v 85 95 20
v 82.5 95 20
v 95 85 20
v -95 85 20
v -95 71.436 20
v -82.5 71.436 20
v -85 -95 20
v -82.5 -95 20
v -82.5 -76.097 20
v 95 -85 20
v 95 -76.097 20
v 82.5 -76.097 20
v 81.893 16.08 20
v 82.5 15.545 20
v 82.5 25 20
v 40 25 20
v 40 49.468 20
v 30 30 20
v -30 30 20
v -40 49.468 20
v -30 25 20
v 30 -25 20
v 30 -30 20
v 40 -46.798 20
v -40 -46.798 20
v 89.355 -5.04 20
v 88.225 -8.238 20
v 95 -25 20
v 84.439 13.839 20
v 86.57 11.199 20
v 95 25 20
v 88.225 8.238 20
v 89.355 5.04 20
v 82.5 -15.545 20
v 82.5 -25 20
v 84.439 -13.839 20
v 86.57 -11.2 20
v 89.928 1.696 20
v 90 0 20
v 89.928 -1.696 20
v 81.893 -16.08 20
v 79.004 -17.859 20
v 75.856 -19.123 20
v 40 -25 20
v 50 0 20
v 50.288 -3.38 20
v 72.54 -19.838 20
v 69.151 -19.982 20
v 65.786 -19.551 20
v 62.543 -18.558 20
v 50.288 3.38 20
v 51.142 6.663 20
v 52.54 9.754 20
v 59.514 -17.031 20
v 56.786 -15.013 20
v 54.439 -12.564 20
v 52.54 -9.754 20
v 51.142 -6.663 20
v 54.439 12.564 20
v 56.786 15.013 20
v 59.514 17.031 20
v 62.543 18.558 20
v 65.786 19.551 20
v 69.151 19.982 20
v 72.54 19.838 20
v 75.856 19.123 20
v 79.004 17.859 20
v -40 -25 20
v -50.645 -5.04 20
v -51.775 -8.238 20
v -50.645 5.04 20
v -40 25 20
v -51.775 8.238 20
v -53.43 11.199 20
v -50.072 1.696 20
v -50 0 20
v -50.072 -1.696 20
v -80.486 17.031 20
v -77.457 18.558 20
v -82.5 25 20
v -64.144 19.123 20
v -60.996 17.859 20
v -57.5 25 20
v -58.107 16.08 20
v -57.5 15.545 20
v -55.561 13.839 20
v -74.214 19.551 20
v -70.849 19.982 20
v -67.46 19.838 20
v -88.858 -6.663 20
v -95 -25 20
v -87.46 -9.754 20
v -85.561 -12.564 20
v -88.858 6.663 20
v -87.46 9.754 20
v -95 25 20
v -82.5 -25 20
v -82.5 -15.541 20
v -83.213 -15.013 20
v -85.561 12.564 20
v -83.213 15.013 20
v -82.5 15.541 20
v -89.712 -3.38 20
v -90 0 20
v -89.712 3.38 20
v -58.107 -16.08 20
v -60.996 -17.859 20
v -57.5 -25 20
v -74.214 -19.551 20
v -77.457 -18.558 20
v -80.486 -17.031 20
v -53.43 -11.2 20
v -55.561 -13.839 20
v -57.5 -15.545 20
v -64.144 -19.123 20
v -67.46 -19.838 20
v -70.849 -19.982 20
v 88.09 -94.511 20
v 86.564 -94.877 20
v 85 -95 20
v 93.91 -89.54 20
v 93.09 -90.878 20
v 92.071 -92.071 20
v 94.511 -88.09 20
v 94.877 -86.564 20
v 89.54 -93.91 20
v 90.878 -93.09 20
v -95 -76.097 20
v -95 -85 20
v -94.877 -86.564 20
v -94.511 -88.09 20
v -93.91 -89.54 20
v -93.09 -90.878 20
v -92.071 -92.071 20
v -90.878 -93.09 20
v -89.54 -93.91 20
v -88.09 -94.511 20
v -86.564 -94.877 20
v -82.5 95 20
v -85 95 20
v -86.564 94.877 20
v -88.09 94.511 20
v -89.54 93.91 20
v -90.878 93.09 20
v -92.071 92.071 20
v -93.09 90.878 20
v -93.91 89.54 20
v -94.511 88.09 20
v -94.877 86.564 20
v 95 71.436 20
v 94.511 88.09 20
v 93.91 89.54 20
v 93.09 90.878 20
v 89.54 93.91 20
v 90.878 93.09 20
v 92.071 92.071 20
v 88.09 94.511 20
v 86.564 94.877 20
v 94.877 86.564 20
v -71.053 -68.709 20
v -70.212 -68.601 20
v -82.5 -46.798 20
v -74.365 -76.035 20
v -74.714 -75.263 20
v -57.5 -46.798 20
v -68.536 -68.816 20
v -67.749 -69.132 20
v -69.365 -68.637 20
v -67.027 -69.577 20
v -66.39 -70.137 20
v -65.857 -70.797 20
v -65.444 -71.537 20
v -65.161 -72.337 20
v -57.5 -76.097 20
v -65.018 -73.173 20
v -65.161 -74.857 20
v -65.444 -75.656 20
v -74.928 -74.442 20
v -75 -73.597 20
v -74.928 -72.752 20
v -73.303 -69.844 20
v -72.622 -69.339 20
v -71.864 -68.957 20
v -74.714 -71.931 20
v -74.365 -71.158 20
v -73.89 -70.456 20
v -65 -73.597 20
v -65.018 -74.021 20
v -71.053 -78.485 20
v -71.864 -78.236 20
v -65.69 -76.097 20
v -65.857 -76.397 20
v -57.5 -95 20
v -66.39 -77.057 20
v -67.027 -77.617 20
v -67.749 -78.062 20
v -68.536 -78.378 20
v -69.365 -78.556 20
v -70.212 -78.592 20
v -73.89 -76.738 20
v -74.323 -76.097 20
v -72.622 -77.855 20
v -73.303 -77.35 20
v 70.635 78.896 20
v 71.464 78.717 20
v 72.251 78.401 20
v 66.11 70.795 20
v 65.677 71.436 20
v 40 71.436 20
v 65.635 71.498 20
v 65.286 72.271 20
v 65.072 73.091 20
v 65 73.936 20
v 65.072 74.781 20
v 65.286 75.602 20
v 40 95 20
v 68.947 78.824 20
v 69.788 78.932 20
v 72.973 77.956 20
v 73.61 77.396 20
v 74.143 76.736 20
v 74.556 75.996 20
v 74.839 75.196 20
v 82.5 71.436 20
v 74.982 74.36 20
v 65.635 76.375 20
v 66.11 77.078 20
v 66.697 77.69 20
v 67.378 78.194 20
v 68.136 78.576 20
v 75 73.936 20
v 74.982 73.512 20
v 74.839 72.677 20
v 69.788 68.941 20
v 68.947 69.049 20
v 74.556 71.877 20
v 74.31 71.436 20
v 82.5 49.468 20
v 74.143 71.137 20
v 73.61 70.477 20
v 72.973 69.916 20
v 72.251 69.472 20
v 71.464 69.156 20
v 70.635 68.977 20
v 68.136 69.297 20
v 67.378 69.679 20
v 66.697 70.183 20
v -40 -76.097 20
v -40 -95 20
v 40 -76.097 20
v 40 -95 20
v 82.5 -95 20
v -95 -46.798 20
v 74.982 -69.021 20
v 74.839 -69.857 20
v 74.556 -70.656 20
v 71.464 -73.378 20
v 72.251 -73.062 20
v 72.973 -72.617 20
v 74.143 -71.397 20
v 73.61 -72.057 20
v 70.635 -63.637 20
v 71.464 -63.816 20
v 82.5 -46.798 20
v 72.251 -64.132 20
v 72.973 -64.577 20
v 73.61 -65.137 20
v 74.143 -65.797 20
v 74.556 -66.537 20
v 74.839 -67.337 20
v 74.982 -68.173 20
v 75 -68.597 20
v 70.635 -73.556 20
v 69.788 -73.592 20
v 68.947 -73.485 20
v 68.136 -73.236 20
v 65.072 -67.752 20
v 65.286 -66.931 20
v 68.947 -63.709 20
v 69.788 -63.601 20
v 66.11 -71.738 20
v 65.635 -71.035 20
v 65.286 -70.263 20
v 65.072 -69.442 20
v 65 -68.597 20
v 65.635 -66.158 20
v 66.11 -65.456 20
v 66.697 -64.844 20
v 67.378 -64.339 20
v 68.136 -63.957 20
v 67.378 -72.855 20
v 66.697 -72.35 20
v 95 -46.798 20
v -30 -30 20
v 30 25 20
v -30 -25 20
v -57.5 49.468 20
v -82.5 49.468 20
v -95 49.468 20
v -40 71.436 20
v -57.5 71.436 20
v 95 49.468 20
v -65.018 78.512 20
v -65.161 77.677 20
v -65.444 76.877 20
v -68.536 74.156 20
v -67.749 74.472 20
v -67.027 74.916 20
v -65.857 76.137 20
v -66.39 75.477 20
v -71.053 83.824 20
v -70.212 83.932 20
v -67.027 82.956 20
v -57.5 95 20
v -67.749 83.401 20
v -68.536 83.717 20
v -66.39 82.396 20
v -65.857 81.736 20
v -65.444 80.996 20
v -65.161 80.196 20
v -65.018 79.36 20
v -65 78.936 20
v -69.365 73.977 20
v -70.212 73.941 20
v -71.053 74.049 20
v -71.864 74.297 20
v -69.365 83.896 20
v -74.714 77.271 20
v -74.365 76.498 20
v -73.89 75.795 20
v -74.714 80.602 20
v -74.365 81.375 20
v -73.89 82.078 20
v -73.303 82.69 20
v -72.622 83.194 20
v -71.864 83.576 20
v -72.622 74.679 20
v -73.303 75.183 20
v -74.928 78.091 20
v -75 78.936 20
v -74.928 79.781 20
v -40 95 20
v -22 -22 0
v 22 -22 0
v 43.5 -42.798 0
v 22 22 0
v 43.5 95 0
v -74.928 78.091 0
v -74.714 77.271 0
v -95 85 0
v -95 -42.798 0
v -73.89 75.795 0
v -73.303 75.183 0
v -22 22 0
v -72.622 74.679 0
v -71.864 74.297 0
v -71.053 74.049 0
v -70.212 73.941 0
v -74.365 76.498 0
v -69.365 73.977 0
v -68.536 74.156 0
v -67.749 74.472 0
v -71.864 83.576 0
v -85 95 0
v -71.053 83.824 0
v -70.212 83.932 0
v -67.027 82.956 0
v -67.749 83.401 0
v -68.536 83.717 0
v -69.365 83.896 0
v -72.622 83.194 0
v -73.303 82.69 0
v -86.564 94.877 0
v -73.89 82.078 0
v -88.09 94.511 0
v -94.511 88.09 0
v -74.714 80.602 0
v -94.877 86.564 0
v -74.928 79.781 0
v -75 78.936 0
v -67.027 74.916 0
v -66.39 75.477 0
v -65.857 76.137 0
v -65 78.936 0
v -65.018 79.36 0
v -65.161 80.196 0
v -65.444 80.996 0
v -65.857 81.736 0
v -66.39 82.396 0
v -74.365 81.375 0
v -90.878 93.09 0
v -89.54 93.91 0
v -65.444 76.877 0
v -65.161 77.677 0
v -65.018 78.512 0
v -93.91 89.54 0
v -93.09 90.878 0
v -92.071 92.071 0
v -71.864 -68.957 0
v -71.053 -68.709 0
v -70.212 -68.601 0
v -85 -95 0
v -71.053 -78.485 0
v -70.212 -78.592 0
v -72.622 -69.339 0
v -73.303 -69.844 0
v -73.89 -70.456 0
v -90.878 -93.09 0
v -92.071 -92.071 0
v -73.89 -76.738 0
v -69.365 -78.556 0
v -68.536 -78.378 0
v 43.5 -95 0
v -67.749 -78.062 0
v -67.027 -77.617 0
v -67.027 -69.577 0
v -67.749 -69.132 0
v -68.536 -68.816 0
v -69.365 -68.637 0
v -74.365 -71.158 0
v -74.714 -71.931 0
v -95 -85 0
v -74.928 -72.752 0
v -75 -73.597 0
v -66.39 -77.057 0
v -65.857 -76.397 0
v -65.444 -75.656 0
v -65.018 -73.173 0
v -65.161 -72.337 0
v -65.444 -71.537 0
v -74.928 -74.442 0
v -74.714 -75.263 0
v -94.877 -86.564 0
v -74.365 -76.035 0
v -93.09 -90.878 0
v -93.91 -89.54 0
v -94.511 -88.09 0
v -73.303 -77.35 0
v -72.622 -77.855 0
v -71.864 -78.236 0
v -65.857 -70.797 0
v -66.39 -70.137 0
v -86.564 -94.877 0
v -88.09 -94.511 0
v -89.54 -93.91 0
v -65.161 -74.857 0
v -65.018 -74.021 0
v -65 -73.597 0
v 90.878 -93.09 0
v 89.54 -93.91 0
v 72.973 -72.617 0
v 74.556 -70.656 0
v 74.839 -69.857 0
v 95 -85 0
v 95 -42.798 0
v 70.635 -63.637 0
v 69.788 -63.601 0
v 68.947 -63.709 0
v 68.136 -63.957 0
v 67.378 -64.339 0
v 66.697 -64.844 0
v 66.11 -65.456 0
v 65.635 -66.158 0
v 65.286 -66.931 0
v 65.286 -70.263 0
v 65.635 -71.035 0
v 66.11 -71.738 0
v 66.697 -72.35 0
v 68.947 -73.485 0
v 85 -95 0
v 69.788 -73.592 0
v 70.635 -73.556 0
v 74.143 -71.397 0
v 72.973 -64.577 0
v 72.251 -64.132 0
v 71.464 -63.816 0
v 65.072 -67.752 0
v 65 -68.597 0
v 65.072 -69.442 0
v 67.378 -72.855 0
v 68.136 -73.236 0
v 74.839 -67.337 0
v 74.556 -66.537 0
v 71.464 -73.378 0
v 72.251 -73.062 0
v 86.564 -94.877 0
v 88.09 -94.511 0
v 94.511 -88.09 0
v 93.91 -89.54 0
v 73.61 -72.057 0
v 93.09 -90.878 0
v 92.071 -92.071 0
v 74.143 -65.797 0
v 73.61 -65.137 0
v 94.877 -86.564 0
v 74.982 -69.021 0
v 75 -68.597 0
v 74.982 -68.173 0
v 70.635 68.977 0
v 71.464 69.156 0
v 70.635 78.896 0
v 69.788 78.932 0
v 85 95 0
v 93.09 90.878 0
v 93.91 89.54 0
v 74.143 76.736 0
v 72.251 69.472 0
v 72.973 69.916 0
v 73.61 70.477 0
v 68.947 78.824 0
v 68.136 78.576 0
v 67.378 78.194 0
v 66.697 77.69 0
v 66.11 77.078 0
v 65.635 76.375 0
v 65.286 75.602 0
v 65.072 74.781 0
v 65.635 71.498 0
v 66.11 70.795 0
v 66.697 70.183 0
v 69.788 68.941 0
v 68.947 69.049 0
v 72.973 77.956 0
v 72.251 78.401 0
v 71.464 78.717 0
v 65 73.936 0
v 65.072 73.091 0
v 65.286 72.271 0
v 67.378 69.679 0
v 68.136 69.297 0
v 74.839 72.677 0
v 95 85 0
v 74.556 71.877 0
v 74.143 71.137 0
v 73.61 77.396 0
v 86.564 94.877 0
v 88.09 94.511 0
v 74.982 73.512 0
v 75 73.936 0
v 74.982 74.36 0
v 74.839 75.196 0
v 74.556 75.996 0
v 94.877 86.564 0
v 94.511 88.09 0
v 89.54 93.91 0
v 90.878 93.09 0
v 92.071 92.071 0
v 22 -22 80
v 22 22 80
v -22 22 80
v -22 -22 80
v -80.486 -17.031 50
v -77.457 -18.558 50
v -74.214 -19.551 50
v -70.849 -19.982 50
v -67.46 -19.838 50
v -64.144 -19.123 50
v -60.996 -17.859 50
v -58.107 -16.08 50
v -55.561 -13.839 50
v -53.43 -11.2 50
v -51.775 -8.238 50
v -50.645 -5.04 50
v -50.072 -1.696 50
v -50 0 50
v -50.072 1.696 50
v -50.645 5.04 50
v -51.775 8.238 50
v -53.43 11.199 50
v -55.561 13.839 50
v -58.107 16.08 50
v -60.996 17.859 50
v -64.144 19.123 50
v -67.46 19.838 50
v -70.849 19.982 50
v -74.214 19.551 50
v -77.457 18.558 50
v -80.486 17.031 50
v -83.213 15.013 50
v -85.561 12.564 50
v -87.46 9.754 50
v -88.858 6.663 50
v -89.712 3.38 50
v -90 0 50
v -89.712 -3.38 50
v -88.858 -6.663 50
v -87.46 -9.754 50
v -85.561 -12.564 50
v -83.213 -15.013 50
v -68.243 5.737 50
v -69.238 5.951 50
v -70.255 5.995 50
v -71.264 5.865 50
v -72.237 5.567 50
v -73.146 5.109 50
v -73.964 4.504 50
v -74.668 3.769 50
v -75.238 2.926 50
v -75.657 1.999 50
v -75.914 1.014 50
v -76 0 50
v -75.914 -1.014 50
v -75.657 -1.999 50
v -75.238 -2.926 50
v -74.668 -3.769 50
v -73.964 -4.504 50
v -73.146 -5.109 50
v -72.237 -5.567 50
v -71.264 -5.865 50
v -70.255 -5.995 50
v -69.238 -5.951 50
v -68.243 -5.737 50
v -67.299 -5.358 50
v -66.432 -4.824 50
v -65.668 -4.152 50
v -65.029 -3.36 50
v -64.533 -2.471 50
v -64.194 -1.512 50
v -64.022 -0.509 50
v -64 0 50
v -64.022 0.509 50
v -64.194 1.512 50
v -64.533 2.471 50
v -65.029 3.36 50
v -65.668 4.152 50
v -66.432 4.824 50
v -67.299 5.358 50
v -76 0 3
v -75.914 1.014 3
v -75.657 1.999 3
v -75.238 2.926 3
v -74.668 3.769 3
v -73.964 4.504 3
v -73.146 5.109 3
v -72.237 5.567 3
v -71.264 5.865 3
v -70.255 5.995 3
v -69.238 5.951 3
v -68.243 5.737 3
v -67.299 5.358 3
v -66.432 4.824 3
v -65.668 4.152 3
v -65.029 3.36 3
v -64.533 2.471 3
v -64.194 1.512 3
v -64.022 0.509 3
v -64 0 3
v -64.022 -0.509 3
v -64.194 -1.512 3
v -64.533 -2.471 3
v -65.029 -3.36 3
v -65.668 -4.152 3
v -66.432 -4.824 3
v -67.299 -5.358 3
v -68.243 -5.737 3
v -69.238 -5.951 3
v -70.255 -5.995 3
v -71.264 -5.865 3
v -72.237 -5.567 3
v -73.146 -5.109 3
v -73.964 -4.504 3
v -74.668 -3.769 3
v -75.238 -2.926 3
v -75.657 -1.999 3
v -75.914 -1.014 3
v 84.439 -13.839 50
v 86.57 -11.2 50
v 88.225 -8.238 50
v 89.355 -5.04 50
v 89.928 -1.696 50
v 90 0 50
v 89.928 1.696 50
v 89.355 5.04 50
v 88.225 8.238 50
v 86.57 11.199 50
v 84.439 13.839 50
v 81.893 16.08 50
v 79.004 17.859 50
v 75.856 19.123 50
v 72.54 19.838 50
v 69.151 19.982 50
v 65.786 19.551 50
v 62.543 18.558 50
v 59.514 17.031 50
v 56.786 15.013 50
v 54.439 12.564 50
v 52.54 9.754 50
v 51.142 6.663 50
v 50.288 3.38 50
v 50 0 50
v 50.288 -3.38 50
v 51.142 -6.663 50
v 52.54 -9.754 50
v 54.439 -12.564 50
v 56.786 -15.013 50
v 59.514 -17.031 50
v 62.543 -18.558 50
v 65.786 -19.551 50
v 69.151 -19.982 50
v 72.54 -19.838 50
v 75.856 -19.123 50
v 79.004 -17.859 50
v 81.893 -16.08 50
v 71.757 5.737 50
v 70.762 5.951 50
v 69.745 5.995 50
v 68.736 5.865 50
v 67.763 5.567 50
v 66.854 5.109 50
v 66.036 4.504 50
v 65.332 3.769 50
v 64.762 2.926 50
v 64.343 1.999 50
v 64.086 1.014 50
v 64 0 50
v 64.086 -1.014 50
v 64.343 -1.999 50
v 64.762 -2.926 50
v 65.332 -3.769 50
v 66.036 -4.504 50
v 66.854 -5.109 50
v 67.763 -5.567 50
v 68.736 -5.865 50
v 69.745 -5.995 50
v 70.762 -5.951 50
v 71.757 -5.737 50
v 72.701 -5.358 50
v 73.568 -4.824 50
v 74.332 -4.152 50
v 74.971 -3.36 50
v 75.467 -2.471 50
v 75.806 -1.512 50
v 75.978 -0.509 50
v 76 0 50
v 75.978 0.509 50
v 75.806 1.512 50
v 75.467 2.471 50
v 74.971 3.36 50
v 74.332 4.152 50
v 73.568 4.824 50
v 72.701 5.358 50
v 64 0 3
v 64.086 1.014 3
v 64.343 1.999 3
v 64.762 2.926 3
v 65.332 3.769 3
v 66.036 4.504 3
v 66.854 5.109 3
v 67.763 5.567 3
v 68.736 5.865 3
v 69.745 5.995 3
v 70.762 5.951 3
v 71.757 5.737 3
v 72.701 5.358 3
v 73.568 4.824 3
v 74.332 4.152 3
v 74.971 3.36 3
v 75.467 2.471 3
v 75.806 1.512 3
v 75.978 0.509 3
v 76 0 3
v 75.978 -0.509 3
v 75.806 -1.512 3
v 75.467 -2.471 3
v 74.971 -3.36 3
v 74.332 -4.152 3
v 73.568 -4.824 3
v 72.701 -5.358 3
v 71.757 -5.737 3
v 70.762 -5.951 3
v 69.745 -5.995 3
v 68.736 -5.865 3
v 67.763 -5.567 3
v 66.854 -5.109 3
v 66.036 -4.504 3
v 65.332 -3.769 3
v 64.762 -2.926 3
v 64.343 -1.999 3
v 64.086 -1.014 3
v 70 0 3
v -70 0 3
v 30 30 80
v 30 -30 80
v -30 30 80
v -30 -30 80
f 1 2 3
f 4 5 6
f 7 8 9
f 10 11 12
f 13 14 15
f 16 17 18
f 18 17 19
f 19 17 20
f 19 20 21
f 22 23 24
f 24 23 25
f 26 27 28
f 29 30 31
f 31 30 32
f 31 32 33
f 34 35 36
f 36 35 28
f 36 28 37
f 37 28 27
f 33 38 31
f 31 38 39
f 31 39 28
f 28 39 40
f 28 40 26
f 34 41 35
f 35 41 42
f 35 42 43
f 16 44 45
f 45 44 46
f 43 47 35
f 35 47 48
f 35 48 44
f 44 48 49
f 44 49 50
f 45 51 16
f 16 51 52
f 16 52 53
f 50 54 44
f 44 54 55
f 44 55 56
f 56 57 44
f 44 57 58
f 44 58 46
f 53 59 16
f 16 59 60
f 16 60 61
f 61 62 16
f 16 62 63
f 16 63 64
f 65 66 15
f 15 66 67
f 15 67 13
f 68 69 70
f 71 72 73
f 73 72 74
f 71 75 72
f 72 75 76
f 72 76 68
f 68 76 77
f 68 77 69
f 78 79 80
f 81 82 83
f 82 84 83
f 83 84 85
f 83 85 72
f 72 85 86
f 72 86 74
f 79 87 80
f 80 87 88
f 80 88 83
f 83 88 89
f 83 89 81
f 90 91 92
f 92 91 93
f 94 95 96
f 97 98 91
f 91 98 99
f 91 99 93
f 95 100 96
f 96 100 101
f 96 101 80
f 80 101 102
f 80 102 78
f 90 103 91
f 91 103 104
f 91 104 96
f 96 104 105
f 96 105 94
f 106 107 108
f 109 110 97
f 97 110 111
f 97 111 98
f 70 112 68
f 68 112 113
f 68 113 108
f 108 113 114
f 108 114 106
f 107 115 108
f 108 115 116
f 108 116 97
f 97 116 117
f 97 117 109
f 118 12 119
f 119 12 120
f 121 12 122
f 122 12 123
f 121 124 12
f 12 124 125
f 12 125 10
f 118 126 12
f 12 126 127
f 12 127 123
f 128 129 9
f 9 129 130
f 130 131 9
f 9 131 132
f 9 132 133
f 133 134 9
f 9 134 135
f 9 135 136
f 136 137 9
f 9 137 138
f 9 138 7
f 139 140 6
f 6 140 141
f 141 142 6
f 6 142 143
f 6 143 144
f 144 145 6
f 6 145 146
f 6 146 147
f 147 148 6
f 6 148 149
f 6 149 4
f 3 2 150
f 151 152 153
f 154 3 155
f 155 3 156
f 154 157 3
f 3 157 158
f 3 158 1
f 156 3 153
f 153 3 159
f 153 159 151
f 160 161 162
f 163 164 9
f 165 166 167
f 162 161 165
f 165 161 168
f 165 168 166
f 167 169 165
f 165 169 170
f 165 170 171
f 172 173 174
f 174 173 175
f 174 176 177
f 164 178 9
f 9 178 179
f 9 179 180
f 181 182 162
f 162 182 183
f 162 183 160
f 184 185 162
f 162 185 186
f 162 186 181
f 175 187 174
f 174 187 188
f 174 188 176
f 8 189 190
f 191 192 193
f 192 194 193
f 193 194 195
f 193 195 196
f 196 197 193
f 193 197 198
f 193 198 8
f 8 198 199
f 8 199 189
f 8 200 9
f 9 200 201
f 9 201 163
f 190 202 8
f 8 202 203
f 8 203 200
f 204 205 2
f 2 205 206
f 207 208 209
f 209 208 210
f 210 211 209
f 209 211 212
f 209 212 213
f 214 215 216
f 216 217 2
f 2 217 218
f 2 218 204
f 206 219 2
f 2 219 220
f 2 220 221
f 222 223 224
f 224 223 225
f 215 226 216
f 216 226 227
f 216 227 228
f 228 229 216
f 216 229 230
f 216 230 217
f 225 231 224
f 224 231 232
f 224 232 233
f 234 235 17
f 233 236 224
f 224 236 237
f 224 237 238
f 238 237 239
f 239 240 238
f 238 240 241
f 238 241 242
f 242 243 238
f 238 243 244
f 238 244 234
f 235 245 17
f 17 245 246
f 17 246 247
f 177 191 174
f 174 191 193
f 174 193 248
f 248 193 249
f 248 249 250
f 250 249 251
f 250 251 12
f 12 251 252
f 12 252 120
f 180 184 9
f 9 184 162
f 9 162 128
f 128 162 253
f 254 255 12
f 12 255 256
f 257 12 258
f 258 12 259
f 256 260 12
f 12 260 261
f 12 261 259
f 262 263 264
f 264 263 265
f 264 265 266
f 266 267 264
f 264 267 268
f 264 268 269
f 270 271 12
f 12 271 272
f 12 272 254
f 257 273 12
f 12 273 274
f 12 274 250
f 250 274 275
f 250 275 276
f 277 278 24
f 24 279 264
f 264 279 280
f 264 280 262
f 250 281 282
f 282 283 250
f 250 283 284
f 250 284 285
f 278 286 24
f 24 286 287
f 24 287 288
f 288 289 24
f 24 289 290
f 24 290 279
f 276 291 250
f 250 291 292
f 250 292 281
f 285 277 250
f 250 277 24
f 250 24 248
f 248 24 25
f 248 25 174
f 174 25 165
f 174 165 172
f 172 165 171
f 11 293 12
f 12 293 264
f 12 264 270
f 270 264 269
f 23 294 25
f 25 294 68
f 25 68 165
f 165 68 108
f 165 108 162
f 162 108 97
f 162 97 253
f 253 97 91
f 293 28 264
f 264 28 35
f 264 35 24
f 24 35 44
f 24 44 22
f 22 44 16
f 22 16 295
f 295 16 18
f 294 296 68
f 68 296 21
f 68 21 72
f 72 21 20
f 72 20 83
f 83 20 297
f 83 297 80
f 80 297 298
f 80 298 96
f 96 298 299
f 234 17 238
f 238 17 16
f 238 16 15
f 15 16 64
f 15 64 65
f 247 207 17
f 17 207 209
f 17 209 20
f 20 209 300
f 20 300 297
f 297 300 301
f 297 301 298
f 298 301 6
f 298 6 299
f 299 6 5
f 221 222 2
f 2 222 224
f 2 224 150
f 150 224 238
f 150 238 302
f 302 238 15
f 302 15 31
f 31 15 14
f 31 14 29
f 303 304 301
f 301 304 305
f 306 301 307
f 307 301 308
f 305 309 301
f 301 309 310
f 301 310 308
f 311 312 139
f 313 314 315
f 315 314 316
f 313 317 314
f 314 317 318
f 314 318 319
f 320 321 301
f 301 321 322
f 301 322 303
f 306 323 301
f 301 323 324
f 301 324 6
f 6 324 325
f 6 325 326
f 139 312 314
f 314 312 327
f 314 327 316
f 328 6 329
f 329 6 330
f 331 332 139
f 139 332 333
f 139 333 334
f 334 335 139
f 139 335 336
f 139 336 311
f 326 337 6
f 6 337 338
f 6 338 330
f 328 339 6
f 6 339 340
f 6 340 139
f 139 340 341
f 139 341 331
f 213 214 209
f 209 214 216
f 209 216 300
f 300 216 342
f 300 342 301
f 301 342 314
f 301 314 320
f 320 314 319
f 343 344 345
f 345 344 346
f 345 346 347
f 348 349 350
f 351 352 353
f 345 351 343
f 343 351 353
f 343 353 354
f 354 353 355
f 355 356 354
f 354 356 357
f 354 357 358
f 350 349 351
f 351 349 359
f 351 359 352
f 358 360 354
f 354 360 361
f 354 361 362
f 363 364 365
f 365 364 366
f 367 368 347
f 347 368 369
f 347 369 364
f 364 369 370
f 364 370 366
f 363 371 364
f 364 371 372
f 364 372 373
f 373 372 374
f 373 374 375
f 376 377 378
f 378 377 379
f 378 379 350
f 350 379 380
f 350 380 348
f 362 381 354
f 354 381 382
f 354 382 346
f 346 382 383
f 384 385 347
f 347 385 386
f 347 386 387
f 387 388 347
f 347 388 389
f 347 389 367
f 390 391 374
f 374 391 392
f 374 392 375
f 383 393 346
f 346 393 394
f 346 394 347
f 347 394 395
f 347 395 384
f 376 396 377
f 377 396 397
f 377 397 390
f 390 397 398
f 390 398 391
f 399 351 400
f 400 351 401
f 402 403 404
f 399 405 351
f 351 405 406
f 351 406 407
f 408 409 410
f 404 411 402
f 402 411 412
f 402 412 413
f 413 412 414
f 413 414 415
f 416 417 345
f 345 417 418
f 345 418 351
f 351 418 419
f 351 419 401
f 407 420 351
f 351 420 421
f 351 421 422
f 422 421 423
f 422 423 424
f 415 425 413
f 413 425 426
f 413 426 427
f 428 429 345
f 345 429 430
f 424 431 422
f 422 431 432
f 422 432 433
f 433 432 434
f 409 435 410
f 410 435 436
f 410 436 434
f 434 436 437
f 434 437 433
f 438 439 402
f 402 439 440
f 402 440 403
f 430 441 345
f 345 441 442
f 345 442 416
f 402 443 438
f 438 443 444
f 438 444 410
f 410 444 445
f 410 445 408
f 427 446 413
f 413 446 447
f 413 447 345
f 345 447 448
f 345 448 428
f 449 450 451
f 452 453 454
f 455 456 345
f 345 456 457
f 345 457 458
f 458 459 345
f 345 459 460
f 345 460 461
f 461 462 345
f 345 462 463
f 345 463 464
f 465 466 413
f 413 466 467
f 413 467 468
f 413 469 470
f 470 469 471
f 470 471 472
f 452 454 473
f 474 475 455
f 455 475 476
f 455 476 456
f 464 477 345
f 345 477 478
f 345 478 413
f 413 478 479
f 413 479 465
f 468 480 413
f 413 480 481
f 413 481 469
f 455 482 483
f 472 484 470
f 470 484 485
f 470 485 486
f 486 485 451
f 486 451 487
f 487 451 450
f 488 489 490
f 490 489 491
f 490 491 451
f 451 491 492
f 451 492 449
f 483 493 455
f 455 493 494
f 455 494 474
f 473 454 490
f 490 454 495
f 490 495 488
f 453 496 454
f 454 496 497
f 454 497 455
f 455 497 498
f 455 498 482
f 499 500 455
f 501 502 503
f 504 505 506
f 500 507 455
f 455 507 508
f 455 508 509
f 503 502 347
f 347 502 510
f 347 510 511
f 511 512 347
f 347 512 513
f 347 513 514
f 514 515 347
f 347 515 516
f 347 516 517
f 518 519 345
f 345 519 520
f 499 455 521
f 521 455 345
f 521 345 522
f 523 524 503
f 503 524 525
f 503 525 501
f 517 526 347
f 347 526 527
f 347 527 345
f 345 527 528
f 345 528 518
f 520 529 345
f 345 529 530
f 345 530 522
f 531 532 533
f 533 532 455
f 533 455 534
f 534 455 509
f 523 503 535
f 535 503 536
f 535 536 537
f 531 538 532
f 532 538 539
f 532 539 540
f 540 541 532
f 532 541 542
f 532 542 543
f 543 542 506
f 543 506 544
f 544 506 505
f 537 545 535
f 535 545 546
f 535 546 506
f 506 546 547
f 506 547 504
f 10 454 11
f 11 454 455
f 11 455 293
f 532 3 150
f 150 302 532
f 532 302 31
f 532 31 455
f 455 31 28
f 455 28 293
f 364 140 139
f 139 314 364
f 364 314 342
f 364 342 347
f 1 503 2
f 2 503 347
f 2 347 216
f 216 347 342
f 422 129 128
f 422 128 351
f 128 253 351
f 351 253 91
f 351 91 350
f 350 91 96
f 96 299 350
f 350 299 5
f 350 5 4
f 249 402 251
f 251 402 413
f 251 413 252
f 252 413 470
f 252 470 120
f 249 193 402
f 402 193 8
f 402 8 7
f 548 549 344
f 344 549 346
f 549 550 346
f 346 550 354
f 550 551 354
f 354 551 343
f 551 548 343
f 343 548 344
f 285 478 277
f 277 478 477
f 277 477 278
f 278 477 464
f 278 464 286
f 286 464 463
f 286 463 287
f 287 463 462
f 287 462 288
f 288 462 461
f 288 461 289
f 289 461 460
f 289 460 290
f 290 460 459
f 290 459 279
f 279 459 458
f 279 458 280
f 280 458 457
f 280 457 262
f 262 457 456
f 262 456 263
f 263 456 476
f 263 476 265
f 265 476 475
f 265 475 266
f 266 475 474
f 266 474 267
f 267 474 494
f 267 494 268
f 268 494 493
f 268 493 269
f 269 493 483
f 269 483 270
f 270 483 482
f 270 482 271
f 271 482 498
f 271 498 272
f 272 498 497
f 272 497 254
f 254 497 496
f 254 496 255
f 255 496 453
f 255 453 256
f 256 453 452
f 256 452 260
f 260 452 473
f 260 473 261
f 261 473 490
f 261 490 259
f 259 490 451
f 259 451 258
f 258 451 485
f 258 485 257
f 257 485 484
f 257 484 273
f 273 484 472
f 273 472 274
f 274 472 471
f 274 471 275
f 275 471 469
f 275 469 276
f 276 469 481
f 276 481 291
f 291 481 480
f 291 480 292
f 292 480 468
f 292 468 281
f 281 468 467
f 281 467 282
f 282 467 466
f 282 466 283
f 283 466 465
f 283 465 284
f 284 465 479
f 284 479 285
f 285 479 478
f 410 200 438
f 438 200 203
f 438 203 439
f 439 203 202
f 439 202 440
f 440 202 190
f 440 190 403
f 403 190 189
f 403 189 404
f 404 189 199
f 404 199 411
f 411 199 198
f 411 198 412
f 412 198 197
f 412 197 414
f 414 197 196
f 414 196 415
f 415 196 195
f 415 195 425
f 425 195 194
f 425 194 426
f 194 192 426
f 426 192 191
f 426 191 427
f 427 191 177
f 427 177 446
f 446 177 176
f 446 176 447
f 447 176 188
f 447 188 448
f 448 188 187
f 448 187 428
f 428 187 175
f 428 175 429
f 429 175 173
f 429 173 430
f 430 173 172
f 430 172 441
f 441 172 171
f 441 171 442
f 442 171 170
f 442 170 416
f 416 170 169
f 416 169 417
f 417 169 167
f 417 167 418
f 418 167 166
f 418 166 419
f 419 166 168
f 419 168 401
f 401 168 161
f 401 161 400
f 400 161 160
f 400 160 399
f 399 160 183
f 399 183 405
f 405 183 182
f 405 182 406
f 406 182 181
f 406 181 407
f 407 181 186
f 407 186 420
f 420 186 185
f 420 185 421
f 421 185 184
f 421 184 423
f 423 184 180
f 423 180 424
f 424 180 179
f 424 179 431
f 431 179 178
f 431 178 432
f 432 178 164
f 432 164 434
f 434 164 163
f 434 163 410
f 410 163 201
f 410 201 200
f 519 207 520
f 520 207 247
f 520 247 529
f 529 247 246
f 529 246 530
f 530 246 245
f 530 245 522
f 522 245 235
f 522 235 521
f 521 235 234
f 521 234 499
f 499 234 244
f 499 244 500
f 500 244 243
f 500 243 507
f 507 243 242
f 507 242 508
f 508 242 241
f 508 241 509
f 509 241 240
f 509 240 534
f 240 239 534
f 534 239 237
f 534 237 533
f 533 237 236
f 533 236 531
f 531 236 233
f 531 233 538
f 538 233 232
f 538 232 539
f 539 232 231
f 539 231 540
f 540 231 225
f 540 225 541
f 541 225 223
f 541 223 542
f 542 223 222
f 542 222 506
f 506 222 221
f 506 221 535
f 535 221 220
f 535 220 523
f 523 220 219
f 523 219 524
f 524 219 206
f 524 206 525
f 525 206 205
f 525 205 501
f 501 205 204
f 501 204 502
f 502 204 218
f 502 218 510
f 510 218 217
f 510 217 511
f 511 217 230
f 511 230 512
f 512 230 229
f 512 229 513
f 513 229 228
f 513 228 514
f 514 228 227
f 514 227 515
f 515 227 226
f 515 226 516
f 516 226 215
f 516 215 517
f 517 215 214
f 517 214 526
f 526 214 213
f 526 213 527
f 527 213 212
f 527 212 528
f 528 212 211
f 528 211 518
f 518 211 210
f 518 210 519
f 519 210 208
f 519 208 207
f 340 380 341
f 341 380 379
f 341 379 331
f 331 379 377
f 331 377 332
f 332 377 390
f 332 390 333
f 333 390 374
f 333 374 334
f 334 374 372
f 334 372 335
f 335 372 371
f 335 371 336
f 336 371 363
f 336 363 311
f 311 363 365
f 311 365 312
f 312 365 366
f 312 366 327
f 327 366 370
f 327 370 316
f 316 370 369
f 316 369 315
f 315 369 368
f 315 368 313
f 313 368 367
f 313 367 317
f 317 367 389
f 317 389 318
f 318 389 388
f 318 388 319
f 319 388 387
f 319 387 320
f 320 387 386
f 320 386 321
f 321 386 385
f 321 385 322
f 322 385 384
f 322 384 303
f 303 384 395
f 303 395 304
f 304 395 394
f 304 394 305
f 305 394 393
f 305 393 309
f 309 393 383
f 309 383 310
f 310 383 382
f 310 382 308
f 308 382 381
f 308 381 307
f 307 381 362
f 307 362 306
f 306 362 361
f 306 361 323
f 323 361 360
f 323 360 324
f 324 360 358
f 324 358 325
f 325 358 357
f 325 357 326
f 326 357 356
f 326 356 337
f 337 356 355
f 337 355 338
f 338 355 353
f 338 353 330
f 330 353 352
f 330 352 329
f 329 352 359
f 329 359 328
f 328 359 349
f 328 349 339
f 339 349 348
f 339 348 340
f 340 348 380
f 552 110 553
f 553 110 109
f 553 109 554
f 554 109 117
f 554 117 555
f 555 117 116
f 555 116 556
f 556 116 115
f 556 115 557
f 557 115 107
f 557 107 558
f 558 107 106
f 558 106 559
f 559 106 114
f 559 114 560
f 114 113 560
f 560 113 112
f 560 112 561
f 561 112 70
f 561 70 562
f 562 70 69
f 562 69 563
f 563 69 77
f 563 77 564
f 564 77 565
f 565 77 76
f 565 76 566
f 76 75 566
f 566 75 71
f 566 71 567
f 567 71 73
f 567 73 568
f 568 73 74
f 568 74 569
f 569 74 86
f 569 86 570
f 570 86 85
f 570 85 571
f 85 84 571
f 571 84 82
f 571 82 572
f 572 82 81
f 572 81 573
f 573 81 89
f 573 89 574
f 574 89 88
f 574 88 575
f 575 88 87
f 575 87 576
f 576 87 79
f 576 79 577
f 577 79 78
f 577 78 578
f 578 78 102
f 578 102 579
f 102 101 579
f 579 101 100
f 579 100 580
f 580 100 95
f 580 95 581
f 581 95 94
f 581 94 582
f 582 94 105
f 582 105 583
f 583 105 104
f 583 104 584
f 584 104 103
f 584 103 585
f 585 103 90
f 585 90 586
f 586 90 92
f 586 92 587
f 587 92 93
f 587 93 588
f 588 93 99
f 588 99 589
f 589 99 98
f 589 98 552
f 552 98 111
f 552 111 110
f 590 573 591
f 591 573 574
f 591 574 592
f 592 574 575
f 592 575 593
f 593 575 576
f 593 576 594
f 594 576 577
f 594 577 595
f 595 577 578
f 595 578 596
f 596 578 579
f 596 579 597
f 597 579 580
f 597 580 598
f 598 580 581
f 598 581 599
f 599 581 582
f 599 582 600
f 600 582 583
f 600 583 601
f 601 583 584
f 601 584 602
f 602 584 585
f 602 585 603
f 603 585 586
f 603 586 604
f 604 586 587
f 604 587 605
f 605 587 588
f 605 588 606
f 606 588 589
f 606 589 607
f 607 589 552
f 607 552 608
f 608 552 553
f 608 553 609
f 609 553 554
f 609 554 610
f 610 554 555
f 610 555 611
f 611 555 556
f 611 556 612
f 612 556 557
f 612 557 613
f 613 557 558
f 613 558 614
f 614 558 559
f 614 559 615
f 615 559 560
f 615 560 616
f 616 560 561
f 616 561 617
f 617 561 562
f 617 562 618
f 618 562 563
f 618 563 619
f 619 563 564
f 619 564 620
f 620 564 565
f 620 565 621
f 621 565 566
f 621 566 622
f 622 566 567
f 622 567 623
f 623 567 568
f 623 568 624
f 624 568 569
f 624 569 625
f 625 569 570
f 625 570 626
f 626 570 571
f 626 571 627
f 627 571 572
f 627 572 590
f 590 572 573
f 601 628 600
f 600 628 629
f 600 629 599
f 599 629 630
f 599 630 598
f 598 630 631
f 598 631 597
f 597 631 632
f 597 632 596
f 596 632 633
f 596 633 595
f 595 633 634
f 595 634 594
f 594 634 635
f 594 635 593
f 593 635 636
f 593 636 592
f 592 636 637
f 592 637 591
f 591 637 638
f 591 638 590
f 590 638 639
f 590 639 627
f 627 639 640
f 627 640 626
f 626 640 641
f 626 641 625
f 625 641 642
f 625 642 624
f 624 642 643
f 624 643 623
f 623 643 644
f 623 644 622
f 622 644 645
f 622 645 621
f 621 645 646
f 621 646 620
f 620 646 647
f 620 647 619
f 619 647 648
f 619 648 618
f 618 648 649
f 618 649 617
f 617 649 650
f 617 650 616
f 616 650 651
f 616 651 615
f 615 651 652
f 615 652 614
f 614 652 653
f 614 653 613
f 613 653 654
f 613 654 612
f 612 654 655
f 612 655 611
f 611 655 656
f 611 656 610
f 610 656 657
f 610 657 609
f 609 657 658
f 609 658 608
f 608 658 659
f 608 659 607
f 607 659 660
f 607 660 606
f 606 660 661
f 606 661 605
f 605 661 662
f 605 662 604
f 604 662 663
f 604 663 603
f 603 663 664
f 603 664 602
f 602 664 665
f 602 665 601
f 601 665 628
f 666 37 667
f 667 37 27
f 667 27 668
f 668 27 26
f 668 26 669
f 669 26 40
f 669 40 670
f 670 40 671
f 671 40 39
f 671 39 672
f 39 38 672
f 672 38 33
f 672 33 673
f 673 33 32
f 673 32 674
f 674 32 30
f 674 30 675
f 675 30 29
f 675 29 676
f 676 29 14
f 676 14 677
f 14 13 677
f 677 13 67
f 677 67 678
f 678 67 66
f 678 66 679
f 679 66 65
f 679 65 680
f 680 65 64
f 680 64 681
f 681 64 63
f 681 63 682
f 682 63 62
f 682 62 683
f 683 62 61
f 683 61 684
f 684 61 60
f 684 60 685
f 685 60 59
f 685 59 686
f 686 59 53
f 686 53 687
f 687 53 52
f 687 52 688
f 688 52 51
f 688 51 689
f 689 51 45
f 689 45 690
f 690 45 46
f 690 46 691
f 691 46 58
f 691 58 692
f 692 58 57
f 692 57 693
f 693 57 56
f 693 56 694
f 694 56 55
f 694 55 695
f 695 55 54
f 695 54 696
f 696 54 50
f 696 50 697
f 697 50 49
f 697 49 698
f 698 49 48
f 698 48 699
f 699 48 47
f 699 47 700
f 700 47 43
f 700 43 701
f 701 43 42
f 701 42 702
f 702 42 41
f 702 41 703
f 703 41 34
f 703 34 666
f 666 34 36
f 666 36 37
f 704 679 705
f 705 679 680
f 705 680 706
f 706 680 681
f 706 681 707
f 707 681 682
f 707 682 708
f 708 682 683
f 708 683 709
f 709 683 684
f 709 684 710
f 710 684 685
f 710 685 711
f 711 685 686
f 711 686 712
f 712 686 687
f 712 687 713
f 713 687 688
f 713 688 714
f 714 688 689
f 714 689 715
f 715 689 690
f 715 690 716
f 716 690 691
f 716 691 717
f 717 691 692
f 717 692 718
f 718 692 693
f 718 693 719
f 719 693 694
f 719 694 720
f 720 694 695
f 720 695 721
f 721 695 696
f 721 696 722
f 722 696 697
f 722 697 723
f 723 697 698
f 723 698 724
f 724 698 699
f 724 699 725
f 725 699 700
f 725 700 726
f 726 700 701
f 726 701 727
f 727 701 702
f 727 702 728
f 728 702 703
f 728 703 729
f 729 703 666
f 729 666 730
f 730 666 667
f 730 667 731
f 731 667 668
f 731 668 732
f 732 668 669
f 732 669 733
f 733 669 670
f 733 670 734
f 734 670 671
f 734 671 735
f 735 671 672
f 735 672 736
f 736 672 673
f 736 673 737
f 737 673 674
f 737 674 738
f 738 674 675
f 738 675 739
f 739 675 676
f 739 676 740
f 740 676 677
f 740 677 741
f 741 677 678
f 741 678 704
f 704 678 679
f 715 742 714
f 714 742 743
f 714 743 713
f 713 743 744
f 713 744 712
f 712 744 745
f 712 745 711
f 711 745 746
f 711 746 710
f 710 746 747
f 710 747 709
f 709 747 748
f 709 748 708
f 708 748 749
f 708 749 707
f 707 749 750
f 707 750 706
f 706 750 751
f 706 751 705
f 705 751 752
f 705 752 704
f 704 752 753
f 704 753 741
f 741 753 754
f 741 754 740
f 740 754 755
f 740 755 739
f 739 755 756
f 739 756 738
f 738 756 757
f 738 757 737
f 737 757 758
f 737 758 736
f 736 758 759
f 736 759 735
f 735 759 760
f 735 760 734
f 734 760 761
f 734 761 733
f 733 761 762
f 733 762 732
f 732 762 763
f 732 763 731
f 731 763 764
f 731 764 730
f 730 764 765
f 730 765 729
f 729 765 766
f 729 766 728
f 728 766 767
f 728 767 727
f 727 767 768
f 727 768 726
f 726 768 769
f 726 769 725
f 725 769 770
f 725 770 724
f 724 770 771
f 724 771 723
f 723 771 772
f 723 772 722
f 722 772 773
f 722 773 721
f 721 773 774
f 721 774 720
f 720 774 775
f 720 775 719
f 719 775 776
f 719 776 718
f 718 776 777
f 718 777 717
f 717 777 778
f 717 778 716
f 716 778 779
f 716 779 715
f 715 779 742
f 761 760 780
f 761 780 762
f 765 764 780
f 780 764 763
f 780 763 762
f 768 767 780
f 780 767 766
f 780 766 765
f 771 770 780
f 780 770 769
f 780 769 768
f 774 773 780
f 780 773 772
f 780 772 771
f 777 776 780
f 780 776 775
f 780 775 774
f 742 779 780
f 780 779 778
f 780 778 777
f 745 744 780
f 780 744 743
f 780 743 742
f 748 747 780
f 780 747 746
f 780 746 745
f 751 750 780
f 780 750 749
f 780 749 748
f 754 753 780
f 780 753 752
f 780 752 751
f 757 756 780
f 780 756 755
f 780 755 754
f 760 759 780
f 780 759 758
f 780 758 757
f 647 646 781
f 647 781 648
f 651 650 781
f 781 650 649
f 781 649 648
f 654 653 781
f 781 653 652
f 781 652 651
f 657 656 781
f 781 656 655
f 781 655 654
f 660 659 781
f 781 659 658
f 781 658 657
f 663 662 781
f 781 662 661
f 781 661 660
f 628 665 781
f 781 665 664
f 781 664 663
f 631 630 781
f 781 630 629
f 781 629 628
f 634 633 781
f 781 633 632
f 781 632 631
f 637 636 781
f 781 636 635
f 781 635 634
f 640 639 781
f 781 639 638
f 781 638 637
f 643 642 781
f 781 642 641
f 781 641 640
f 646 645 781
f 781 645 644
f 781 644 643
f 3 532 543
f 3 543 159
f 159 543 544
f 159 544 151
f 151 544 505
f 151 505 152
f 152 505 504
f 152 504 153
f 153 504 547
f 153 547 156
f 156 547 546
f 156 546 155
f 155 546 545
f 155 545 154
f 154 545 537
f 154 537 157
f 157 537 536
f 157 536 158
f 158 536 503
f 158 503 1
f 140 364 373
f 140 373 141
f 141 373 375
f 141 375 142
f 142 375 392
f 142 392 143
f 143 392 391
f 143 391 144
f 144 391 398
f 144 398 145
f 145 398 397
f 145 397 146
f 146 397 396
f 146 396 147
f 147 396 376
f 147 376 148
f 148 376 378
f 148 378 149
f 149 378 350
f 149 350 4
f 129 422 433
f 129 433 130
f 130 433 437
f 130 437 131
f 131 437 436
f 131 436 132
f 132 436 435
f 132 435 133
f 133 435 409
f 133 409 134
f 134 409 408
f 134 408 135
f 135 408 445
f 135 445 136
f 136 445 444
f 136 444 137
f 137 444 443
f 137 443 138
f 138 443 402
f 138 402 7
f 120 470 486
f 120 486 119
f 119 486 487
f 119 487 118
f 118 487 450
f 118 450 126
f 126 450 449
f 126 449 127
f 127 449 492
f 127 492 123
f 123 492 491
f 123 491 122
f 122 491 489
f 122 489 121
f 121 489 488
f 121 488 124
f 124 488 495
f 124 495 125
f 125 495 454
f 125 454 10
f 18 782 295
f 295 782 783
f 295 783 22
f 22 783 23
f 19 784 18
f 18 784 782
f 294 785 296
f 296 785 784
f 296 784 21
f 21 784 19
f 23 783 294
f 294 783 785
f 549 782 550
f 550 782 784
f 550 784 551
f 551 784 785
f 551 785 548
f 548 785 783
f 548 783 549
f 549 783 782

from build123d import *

# Parameters (mm, degrees)
SKETCH1_W           = 190
SKETCH1_H           = 190
SKETCH1_R           = 20
SKETCH1_R_2         = 5
SKETCH1_W_2         = 44
SKETCH1_H_2         = 44
BOSS_EXTRUDE2_DEPTH = 20
SKETCH2_R           = 20
SKETCH2_R_2         = 6
BOSS_EXTRUDE5_DEPTH = 50
SKETCH4_R           = 20
BOSS_EXTRUDE6_DEPTH = 3
FILLET1_R           = 10
SKETCH6_W           = 60
SKETCH6_H           = 60
SKETCH6_W_2         = 44
SKETCH6_H_2         = 44
BOSS_EXTRUDE7_DEPTH = 80


with BuildPart() as part:
    # Sketch1 → Boss-Extrude2 (new body)
    with BuildSketch(Plane.XY):
        Rectangle(SKETCH1_W, SKETCH1_H)
        with Locations((-70, 0)):
            Circle(SKETCH1_R, mode=Mode.SUBTRACT)
        with Locations((70, 0)):
            Circle(SKETCH1_R, mode=Mode.SUBTRACT)
        with Locations((70, -68.596885854)):
            Circle(SKETCH1_R_2, mode=Mode.SUBTRACT)
        with Locations((-70, -73.596885854)):
            Circle(SKETCH1_R_2, mode=Mode.SUBTRACT)
        with Locations((70, 73.936439664)):
            Circle(SKETCH1_R_2, mode=Mode.SUBTRACT)
        with Locations((-70, 78.936439664)):
            Circle(SKETCH1_R_2, mode=Mode.SUBTRACT)
        Rectangle(SKETCH1_W_2, SKETCH1_H_2, mode=Mode.SUBTRACT)
    extrude(amount=BOSS_EXTRUDE2_DEPTH)

    # Sketch2 → Boss-Extrude5 (add)
    with BuildSketch(Plane.XY):
        with Locations((-70, 0)):
            Circle(SKETCH2_R)
        with Locations((-70, 0)):
            Circle(SKETCH2_R_2, mode=Mode.SUBTRACT)
        with Locations((70, 0)):
            Circle(SKETCH2_R)
        with Locations((70, 0)):
            Circle(SKETCH2_R_2, mode=Mode.SUBTRACT)
    extrude(amount=BOSS_EXTRUDE5_DEPTH)

    # Sketch4 → Boss-Extrude6 (add)
    with BuildSketch(Plane.XY):
        with Locations((70, 0)):
            Circle(SKETCH4_R)
        with Locations((-70, 0)):
            Circle(SKETCH4_R)
    extrude(amount=BOSS_EXTRUDE6_DEPTH)

    # Fillet1
    fillet1_edges = [part.edges().sort_by_distance(p)[0] for p in [
        (95, -95, 10),
        (-95, -95, 10),
        (-95, 95, 10),
        (95, 95, 10),
    ]]
    fillet(fillet1_edges, radius=FILLET1_R)

    # Sketch6 → Boss-Extrude7 (add)
    with BuildSketch(Plane.XY):
        Rectangle(SKETCH6_W, SKETCH6_H)
        Rectangle(SKETCH6_W_2, SKETCH6_H_2, mode=Mode.SUBTRACT)
    extrude(amount=BOSS_EXTRUDE7_DEPTH)


solid = part.part
